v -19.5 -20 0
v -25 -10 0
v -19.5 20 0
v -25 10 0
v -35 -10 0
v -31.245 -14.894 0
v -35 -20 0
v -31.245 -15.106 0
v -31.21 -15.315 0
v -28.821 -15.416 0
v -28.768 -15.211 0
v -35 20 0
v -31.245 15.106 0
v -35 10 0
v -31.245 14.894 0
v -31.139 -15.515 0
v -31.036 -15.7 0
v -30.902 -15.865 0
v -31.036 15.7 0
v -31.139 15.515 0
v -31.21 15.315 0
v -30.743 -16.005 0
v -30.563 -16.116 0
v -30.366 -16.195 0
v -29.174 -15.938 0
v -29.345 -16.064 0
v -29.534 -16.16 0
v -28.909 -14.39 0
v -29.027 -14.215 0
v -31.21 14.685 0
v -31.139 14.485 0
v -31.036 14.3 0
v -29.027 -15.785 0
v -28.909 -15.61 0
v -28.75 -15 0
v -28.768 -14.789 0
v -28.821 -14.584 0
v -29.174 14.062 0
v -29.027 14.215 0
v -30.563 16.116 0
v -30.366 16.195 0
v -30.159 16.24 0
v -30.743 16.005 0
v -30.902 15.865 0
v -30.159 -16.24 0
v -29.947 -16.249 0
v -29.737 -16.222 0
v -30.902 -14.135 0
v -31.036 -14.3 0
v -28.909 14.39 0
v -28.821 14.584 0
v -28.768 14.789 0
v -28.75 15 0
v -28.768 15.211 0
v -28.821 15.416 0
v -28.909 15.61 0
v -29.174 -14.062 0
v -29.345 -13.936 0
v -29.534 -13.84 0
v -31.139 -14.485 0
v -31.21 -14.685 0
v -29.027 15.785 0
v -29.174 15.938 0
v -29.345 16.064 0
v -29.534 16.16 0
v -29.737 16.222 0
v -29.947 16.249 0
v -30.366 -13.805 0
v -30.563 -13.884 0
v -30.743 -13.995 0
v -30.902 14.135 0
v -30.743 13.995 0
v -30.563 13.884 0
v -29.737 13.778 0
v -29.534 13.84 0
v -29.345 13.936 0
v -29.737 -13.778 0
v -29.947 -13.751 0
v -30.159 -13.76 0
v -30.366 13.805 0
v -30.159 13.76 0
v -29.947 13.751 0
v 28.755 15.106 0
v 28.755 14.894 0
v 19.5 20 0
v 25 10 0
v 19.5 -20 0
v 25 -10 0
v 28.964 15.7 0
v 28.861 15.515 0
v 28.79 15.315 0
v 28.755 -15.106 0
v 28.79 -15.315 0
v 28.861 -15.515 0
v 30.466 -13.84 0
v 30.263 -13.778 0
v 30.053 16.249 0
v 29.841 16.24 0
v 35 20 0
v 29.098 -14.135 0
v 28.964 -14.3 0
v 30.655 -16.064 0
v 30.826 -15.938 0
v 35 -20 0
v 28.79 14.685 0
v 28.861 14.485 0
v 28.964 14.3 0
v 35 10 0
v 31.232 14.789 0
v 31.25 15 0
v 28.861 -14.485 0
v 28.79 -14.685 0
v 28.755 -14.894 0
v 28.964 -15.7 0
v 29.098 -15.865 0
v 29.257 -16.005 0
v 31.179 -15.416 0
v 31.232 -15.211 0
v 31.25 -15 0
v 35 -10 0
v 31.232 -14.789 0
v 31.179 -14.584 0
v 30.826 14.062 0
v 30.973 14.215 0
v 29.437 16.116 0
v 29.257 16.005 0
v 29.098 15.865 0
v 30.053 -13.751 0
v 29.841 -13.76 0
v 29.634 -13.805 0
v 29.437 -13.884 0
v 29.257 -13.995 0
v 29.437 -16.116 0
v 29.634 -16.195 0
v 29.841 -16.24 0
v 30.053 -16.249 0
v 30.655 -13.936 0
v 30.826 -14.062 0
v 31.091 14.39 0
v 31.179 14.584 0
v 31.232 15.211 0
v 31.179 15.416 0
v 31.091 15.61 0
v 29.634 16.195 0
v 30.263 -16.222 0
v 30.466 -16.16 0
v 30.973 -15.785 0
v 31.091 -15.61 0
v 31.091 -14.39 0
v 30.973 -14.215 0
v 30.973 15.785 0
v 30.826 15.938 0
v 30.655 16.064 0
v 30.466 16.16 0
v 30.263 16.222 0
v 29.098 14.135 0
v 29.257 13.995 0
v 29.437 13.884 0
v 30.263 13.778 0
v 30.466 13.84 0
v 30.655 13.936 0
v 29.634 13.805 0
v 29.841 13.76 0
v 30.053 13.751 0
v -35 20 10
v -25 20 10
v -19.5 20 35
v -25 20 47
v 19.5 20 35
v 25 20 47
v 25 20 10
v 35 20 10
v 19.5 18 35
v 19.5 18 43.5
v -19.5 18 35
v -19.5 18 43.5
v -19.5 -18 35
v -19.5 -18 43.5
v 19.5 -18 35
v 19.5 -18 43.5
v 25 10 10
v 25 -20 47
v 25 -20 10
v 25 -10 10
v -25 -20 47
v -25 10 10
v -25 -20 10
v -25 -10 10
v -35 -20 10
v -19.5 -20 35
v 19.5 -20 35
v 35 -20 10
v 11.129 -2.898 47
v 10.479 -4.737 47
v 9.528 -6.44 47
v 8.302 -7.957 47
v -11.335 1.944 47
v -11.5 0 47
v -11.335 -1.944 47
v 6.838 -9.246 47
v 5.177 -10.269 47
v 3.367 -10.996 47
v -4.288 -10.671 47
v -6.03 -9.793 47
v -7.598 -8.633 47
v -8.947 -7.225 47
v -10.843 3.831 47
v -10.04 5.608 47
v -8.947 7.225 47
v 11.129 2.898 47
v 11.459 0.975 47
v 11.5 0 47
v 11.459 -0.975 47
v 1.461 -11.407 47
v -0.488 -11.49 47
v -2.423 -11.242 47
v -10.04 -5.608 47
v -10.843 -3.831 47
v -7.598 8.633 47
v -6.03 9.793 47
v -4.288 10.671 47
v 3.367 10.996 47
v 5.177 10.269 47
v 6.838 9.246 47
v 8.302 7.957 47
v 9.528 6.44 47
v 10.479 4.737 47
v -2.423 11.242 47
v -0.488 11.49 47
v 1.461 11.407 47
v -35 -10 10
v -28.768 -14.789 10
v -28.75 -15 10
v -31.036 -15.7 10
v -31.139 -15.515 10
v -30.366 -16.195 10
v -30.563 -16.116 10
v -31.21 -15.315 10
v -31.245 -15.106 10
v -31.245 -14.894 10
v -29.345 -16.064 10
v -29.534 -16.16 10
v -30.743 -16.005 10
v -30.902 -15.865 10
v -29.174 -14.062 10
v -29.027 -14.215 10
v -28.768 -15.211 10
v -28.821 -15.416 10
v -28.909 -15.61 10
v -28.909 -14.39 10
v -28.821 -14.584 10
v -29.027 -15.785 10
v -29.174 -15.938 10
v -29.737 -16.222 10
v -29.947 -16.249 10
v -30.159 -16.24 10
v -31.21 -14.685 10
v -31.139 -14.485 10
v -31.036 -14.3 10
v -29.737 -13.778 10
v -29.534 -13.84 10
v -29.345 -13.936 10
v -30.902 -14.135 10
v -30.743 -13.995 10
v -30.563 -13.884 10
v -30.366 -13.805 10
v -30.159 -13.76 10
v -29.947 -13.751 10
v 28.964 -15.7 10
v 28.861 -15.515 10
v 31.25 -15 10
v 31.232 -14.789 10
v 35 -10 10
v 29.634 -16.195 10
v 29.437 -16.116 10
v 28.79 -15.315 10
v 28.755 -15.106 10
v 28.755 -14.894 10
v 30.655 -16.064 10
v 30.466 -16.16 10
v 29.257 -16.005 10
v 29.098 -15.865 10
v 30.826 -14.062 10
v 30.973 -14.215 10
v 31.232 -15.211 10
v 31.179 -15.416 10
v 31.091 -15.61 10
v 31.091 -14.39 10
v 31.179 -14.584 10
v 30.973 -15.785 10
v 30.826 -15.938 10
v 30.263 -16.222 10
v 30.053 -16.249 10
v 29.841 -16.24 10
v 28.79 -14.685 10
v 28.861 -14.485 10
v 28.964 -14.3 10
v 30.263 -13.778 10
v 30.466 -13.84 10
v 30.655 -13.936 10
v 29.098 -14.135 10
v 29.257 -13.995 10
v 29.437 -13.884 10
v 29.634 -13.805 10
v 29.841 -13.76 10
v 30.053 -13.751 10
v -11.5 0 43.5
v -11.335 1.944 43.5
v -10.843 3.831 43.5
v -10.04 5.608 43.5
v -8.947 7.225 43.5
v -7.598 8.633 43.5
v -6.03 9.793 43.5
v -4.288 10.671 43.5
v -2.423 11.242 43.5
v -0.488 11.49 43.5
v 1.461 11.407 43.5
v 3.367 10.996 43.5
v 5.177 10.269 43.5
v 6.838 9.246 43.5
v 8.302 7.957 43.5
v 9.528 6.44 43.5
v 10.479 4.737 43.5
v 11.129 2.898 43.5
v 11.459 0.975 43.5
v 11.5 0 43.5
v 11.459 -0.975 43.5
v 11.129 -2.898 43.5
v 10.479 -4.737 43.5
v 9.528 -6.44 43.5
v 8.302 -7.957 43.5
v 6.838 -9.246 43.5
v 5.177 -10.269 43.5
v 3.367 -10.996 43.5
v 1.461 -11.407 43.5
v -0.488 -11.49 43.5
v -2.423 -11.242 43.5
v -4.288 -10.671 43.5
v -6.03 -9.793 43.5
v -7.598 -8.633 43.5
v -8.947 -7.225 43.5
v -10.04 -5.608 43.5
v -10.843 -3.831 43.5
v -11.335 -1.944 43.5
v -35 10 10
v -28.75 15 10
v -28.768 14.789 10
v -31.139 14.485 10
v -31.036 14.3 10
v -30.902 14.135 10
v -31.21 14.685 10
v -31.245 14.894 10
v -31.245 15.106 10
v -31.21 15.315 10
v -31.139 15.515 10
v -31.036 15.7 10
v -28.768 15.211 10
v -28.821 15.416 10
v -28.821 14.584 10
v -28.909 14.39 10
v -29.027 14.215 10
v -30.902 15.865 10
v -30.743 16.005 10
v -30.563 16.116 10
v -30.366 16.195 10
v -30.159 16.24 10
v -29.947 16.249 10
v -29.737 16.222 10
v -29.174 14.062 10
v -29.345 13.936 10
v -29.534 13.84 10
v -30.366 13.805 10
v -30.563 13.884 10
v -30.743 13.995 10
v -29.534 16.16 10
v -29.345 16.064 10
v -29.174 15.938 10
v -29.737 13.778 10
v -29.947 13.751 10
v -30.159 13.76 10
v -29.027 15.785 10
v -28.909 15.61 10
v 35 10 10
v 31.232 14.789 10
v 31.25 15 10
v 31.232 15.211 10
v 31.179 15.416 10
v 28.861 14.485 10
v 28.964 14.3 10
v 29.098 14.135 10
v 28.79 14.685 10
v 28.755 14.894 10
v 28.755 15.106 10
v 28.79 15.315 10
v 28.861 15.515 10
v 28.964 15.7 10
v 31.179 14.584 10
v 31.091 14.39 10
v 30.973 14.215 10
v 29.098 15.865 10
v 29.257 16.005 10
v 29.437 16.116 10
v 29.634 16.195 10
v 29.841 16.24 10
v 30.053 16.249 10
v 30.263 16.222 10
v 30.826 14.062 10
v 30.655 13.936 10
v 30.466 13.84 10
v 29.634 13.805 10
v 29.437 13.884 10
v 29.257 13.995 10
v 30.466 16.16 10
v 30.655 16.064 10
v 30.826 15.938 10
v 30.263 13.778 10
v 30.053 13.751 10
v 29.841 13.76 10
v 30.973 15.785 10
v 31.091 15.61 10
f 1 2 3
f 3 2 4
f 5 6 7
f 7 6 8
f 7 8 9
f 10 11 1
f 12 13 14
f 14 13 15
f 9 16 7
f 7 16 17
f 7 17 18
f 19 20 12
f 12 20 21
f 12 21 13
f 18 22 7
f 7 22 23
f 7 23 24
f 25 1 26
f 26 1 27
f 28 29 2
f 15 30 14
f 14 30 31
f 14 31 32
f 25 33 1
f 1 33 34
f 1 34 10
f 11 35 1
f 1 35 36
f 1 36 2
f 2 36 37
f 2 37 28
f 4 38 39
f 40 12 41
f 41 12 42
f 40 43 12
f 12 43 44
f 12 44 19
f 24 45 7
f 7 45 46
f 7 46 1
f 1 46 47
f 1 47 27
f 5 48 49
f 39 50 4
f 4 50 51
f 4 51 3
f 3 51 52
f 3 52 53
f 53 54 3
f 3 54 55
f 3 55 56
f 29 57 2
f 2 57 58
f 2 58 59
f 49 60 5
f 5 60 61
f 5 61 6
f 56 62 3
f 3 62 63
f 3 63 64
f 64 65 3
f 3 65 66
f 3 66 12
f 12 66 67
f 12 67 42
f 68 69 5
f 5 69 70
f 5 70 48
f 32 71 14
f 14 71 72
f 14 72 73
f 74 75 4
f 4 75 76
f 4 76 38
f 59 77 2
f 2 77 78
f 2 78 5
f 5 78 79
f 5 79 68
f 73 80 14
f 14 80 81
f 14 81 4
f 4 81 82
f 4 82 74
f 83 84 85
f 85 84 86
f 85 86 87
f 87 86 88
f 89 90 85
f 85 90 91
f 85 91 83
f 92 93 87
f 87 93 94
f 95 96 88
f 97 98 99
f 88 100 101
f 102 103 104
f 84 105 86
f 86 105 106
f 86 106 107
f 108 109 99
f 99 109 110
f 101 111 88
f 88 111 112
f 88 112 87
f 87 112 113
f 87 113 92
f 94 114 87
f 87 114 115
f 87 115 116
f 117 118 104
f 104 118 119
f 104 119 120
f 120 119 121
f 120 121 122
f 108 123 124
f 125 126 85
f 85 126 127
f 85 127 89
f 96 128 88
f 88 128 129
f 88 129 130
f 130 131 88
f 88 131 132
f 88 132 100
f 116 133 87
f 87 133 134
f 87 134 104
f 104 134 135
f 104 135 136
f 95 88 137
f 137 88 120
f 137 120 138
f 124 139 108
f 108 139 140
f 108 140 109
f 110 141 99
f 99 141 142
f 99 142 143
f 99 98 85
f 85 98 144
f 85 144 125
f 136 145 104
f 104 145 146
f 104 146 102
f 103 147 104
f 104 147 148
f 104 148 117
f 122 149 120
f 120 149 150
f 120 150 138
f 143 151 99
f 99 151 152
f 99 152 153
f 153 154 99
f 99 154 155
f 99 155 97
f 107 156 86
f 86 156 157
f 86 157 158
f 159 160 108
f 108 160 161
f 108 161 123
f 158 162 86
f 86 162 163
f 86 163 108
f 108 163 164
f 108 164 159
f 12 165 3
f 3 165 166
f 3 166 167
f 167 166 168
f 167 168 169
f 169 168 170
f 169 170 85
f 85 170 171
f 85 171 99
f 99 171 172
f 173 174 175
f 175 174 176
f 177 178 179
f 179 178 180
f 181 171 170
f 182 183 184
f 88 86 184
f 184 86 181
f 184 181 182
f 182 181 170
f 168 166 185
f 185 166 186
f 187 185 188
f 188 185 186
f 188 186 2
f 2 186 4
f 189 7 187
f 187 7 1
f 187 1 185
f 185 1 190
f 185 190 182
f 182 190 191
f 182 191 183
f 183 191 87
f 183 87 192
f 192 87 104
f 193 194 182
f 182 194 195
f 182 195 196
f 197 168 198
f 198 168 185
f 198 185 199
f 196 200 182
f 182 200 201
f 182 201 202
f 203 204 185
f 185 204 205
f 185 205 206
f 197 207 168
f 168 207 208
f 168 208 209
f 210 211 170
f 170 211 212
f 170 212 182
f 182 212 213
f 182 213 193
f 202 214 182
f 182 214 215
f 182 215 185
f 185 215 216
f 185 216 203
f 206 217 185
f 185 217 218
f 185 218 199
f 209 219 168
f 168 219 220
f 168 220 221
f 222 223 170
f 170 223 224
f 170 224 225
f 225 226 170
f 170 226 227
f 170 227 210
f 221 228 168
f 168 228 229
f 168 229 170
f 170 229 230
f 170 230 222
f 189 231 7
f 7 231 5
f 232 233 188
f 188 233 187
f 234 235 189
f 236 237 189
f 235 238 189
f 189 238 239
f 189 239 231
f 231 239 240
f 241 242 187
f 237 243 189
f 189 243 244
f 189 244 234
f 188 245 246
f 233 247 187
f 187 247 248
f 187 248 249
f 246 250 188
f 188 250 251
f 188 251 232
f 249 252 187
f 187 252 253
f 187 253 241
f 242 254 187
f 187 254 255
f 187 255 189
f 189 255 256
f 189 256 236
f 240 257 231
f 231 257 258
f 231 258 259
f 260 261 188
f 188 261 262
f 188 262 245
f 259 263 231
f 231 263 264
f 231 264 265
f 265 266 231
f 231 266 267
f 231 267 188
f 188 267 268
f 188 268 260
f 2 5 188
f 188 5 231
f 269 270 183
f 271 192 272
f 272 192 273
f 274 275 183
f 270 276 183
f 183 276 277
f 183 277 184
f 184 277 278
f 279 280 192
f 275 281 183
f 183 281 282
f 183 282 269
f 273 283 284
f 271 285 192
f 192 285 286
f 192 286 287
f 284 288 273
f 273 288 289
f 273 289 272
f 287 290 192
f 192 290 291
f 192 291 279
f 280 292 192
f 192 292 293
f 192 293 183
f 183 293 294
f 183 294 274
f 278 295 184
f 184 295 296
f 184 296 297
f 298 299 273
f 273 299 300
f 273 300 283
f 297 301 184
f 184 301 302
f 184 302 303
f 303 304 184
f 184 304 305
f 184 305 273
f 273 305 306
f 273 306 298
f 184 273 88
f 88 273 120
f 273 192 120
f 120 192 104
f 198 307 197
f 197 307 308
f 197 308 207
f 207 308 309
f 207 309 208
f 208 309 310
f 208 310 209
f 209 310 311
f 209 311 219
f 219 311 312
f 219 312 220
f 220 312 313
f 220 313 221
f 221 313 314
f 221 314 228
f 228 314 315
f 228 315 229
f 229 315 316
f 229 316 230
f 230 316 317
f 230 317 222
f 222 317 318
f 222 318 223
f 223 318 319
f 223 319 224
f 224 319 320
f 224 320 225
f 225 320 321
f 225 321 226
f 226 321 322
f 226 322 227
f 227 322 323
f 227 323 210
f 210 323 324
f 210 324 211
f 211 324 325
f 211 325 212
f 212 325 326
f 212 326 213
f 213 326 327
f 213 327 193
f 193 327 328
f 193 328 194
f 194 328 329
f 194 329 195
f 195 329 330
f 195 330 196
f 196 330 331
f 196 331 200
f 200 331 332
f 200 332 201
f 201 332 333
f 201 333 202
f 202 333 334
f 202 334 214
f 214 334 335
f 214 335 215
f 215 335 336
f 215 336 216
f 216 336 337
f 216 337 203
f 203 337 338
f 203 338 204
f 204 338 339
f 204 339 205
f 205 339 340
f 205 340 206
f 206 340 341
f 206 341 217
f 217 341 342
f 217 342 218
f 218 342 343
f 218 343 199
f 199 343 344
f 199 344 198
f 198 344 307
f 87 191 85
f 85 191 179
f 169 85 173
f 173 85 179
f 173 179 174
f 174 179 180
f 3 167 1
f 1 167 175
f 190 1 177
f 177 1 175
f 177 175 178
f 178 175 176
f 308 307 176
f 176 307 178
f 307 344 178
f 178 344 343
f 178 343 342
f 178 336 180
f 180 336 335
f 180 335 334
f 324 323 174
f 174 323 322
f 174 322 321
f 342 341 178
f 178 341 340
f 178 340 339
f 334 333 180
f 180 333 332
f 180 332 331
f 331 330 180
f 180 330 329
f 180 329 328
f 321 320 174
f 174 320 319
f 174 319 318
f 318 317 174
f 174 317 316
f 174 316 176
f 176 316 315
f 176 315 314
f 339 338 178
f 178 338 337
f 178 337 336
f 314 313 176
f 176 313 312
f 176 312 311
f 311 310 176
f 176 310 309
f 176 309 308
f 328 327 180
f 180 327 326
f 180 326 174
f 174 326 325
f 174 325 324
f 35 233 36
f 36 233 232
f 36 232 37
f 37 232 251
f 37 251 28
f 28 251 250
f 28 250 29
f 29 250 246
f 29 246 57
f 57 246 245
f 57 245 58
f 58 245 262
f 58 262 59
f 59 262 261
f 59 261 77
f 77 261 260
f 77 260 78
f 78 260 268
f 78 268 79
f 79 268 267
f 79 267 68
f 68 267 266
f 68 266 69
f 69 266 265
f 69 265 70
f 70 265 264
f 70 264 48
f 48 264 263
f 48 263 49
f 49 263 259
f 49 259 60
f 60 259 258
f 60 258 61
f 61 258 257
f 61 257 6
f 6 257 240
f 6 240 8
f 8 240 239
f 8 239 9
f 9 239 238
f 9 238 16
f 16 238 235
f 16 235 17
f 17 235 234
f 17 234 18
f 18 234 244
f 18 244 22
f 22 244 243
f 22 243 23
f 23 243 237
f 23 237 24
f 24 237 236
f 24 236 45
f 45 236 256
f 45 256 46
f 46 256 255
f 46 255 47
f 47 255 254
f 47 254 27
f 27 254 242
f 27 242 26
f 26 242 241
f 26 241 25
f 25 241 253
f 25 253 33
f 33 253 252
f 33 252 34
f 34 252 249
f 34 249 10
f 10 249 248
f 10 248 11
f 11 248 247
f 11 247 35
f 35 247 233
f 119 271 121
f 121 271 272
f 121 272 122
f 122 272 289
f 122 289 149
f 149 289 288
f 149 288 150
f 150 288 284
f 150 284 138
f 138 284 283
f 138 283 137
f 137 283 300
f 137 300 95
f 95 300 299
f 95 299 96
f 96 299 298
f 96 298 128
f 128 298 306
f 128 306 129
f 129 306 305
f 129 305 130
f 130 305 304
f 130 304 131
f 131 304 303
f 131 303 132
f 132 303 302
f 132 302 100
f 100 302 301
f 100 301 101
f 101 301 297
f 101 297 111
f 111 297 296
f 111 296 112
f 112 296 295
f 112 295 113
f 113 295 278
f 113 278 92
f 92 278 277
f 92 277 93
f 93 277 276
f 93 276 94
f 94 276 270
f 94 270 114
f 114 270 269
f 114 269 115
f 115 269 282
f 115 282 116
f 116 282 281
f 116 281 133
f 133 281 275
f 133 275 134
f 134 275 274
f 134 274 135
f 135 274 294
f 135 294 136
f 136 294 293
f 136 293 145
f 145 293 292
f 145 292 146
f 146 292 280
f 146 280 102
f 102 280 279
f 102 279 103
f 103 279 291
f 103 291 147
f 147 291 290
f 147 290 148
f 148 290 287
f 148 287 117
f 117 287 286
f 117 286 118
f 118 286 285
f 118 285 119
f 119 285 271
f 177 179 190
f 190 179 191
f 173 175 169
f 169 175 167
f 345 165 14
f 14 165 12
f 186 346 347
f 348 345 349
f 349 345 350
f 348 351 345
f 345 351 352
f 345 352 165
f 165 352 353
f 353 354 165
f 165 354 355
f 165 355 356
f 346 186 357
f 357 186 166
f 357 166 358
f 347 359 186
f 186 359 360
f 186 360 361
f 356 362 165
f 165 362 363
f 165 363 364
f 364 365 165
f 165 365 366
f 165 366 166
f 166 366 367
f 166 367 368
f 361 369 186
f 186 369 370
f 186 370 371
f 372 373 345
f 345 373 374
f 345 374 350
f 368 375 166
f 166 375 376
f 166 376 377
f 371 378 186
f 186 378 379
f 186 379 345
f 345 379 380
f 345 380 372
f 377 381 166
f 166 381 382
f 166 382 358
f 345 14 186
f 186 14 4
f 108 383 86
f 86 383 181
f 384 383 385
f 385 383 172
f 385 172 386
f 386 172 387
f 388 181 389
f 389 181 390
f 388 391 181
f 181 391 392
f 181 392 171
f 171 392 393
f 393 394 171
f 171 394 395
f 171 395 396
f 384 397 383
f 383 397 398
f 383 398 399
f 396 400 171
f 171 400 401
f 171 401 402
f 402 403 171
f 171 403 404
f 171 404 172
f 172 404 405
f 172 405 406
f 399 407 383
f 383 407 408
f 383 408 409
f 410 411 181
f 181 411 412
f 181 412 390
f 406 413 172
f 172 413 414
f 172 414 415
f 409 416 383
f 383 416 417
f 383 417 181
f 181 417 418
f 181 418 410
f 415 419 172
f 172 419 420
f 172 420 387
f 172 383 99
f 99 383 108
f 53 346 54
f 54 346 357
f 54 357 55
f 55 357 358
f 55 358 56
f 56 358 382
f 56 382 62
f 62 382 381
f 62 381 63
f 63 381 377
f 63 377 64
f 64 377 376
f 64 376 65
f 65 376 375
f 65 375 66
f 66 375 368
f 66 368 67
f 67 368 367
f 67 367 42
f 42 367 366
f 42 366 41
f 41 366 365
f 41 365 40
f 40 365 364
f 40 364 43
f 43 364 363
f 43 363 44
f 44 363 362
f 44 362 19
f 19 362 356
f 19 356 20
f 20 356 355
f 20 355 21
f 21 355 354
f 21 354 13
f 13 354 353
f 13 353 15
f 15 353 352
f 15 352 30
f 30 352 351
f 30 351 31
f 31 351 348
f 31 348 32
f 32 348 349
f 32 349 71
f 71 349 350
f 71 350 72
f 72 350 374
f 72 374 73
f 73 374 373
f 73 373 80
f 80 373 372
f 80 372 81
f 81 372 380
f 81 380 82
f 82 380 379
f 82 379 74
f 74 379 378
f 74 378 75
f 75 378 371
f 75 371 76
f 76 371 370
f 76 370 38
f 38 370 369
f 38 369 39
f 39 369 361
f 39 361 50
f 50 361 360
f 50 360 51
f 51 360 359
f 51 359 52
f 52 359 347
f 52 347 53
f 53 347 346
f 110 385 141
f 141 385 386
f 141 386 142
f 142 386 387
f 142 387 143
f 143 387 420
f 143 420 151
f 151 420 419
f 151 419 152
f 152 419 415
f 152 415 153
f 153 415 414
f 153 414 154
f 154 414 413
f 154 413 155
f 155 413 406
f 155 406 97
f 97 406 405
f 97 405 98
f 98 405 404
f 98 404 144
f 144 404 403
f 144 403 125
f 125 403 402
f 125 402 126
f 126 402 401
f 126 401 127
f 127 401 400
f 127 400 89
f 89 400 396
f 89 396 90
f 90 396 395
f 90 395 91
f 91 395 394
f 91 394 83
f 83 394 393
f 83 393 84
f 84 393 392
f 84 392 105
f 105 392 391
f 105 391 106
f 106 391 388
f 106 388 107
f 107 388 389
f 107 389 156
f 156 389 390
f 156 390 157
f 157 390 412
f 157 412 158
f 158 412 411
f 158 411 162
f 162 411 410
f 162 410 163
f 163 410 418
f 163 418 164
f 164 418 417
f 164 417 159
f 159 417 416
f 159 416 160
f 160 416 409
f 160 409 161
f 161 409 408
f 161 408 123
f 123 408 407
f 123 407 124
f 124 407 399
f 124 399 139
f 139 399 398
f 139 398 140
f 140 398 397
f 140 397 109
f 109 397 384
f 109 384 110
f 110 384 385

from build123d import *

# Parameters (mm, degrees)
SKETCH_1_W               = 50
SKETCH_1_H               = 40
EXTRUDE_2_DEPTH          = 47
SKETCH_3_W               = 70
SKETCH_3_H               = 10
EXTRUDE_3_DEPTH          = 10
CUT_EXTRUDE_1_DEPTH      = 62.919302322
CUT_EXTRUDE_1_DEPTH_BACK = 62.919302322
SKETCH_4_R               = 11.5
SKETCH_5_W               = 39
SKETCH_5_H               = 36
CUT_EXTRUDE_2_DEPTH      = 43.5
M3X0_5_1_D               = 2.5
SKETCH_8_W               = 39
SKETCH_8_H               = 70
CUT_EXTRUDE_3_DEPTH      = 35


with BuildPart() as part:
    # ｽｹｯﾁ1 → ﾎﾞｽ - 押し出し2 (new body)
    with BuildSketch(Plane.XY):
        Rectangle(SKETCH_1_W, SKETCH_1_H)
    extrude(amount=EXTRUDE_2_DEPTH)

    # ｽｹｯﾁ3 → ﾎﾞｽ - 押し出し3 (add)
    with BuildSketch(Plane.XY):
        with Locations((0, -15)):
            Rectangle(SKETCH_3_W, SKETCH_3_H)
    extrude_3 = extrude(amount=EXTRUDE_3_DEPTH)

    # ｽｹｯﾁ4 → ｶｯﾄ - 押し出し1 (cut, two sides: drawn at the far end of the back side and taken through both)
    with BuildSketch(Plane.XY.offset(-CUT_EXTRUDE_1_DEPTH_BACK)):
        Circle(SKETCH_4_R)
    extrude(amount=CUT_EXTRUDE_1_DEPTH + CUT_EXTRUDE_1_DEPTH_BACK, mode=Mode.SUBTRACT)

    # ｽｹｯﾁ5 → ｶｯﾄ - 押し出し2 (cut)
    with BuildSketch(Plane.XY):
        Rectangle(SKETCH_5_W, SKETCH_5_H)
    cut_extrude_2 = extrude(amount=CUT_EXTRUDE_2_DEPTH, mode=Mode.SUBTRACT)

    # M3x0.5 ねじ穴1 (through all)
    with Locations(Plane.XY.offset(10)):
        with Locations((30, -15), (-30, -15)):
            m3x0_5_1 = Hole(M3X0_5_1_D / 2)

    # ｽｹｯﾁ8 → ｶｯﾄ - 押し出し3 (cut)
    with BuildSketch(Plane(origin=(0, 0, 0), x_dir=(-1, 0, 0), z_dir=(0, 0, -1))):
        Rectangle(SKETCH_8_W, SKETCH_8_H)
    cut_extrude_3 = extrude(amount=-CUT_EXTRUDE_3_DEPTH, mode=Mode.SUBTRACT)

    # ﾐﾗｰ4: ﾎﾞｽ - 押し出し3, ｶｯﾄ - 押し出し2, M3x0.5 ねじ穴1, ｶｯﾄ - 押し出し3 across plane
    add(extrude_3.mirror(Plane.ZX))
    add(cut_extrude_2.mirror(Plane.ZX), mode=Mode.SUBTRACT)
    add(m3x0_5_1.mirror(Plane.ZX), mode=Mode.SUBTRACT)
    add(cut_extrude_3.mirror(Plane.ZX), mode=Mode.SUBTRACT)


solid = part.part
